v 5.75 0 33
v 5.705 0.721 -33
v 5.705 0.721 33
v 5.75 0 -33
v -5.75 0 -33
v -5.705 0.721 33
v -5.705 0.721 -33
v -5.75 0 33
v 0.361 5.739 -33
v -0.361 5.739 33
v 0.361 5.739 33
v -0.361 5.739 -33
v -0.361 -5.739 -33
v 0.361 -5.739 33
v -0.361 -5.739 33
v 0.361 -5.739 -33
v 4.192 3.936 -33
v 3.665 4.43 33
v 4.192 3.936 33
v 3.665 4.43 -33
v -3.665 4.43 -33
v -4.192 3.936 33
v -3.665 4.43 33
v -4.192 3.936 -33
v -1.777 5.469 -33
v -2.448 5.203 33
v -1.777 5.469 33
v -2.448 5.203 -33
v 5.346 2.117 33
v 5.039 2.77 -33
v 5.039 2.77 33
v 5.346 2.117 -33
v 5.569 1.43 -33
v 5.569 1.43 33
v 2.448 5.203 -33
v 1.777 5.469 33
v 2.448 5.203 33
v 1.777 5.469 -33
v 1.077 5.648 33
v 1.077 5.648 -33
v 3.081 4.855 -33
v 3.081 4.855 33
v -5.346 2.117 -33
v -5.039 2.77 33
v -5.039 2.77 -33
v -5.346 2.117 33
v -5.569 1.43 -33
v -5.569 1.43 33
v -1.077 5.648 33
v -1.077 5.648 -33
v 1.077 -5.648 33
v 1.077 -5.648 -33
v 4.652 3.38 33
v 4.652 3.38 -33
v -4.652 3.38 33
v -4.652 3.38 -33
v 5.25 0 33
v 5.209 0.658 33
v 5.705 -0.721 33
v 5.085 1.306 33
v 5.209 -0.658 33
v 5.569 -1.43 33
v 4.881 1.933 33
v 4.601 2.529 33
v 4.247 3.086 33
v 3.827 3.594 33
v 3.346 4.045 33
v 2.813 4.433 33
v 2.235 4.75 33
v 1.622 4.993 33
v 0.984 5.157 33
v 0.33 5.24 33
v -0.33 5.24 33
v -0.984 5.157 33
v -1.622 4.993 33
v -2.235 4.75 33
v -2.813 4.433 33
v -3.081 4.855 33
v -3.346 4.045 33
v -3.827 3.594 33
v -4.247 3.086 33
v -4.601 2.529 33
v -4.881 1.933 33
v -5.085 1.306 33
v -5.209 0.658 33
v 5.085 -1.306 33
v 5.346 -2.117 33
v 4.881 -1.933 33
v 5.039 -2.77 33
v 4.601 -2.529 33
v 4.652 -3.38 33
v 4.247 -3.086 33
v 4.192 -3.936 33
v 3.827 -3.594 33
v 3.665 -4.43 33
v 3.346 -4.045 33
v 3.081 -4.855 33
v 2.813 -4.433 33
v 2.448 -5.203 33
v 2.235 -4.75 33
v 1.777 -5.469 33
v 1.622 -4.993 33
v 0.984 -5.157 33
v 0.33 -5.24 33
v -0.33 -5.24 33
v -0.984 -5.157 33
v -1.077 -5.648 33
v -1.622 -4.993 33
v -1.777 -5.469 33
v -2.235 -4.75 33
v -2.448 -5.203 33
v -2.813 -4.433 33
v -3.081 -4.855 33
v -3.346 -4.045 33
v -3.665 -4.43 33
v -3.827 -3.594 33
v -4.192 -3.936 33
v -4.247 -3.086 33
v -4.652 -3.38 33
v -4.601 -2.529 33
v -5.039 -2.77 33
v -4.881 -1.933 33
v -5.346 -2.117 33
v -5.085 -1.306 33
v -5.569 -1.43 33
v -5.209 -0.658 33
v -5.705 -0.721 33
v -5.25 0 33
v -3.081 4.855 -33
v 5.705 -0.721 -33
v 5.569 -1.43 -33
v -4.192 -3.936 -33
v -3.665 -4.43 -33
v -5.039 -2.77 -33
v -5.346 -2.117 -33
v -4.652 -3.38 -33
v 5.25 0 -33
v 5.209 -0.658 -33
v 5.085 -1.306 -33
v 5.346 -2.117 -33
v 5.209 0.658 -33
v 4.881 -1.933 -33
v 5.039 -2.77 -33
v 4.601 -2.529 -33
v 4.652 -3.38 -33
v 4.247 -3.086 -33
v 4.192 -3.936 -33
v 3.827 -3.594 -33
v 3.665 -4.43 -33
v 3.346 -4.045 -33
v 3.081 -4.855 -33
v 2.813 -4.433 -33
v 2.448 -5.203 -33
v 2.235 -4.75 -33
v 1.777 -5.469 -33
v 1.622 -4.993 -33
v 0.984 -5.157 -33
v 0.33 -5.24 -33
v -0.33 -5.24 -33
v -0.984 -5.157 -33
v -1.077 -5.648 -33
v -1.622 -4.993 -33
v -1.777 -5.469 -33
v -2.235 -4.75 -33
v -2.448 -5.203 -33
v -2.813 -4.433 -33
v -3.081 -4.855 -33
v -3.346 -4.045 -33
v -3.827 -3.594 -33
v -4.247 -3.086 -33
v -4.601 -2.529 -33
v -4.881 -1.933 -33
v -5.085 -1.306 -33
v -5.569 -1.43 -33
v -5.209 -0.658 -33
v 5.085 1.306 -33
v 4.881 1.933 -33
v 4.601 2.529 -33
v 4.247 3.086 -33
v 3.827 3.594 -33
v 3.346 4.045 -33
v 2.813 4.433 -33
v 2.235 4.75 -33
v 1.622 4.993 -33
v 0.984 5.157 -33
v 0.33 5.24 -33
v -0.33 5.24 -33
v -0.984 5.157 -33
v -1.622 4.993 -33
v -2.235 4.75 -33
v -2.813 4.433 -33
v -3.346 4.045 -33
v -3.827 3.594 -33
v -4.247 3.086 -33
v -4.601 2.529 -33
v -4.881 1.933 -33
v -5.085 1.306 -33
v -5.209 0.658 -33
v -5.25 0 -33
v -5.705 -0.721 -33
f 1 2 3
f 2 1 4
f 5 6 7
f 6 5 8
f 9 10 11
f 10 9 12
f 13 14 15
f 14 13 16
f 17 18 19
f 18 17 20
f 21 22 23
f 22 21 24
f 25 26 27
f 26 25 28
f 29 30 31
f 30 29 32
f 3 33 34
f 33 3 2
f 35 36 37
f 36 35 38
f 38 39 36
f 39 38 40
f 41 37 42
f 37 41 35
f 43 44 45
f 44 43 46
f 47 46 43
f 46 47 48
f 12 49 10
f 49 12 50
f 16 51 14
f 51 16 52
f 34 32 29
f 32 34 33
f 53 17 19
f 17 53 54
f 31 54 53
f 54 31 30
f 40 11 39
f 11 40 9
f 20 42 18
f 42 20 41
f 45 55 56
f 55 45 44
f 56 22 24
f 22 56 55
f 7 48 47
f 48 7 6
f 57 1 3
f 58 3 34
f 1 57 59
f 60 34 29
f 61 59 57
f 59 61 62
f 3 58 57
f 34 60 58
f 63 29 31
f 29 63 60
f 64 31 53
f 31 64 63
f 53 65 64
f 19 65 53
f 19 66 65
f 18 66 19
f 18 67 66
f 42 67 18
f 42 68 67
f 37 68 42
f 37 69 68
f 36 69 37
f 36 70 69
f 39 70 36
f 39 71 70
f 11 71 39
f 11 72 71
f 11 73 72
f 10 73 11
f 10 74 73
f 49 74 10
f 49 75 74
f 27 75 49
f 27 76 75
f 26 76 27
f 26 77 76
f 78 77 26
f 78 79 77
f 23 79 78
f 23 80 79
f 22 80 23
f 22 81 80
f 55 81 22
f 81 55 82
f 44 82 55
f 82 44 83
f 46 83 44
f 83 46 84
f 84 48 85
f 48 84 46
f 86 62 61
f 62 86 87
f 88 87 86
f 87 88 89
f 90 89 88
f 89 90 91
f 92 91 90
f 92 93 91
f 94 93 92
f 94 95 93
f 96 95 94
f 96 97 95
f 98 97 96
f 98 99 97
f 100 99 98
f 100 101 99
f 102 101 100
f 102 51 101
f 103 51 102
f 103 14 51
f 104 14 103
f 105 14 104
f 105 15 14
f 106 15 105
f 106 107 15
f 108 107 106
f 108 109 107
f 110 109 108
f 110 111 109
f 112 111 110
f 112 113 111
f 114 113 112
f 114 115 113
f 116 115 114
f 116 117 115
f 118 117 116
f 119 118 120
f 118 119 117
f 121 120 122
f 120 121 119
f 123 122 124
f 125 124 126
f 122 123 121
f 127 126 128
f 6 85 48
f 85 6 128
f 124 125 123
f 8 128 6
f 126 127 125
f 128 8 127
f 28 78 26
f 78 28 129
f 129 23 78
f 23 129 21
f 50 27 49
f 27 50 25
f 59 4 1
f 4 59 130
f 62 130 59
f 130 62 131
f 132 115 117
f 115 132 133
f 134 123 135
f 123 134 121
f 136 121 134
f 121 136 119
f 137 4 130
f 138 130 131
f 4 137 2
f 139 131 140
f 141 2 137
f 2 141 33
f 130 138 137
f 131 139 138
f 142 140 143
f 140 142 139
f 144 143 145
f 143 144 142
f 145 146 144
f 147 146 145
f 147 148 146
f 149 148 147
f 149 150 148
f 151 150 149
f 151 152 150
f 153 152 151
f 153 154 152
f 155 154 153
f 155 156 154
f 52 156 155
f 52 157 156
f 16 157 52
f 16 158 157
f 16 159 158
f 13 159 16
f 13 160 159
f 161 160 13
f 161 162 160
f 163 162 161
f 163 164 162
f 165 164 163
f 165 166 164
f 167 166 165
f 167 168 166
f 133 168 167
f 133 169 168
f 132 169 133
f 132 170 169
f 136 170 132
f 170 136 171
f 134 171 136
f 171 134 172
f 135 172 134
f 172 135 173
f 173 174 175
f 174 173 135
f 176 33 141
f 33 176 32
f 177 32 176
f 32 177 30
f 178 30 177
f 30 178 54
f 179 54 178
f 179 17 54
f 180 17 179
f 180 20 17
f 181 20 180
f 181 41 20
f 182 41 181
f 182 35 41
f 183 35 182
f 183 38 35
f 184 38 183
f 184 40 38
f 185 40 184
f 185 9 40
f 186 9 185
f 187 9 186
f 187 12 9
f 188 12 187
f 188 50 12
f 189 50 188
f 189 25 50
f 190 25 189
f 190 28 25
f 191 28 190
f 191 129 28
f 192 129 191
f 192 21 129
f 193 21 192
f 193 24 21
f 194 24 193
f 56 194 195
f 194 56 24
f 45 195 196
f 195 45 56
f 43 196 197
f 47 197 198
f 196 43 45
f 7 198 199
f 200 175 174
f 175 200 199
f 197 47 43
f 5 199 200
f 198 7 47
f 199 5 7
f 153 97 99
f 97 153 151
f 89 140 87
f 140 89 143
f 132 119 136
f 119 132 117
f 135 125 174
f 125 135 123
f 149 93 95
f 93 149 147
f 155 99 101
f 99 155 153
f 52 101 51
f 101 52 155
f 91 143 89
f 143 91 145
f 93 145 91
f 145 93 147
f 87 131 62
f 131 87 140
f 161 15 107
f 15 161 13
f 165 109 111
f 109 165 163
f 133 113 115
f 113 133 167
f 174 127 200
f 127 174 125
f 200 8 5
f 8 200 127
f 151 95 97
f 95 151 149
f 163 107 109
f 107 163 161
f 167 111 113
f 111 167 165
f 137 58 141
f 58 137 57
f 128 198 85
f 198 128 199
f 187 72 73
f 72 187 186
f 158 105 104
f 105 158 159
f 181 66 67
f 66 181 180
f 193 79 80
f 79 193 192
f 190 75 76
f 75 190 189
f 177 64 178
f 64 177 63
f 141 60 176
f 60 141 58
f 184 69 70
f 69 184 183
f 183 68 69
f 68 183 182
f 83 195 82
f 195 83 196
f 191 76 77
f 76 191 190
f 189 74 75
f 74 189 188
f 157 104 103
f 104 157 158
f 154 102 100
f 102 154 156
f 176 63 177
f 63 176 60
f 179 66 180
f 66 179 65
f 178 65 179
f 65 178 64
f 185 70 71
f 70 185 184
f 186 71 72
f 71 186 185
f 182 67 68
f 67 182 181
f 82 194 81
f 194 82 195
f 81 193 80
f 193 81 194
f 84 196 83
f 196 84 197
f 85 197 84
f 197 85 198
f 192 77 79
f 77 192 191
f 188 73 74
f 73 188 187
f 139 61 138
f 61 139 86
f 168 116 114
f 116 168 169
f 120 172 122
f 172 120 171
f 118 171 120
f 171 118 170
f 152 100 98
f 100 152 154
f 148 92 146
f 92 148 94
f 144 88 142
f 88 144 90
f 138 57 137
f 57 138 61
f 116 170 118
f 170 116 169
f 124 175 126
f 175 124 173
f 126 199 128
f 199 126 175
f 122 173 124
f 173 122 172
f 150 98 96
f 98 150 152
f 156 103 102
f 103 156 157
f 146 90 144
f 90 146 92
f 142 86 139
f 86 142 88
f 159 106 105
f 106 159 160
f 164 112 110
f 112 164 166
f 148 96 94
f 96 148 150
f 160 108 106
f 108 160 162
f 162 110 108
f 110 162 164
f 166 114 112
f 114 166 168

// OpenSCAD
$fn = 50;


difference() {
	union() {
		translate(v = [0, 0, -33.0000000000]) {
			cylinder(h = 66, r = 5.7500000000);
		}
	}
	union() {
		translate(v = [0, 0, -100.0000000000]) {
			cylinder(h = 200, r = 5.2500000000);
		}
	}
}
